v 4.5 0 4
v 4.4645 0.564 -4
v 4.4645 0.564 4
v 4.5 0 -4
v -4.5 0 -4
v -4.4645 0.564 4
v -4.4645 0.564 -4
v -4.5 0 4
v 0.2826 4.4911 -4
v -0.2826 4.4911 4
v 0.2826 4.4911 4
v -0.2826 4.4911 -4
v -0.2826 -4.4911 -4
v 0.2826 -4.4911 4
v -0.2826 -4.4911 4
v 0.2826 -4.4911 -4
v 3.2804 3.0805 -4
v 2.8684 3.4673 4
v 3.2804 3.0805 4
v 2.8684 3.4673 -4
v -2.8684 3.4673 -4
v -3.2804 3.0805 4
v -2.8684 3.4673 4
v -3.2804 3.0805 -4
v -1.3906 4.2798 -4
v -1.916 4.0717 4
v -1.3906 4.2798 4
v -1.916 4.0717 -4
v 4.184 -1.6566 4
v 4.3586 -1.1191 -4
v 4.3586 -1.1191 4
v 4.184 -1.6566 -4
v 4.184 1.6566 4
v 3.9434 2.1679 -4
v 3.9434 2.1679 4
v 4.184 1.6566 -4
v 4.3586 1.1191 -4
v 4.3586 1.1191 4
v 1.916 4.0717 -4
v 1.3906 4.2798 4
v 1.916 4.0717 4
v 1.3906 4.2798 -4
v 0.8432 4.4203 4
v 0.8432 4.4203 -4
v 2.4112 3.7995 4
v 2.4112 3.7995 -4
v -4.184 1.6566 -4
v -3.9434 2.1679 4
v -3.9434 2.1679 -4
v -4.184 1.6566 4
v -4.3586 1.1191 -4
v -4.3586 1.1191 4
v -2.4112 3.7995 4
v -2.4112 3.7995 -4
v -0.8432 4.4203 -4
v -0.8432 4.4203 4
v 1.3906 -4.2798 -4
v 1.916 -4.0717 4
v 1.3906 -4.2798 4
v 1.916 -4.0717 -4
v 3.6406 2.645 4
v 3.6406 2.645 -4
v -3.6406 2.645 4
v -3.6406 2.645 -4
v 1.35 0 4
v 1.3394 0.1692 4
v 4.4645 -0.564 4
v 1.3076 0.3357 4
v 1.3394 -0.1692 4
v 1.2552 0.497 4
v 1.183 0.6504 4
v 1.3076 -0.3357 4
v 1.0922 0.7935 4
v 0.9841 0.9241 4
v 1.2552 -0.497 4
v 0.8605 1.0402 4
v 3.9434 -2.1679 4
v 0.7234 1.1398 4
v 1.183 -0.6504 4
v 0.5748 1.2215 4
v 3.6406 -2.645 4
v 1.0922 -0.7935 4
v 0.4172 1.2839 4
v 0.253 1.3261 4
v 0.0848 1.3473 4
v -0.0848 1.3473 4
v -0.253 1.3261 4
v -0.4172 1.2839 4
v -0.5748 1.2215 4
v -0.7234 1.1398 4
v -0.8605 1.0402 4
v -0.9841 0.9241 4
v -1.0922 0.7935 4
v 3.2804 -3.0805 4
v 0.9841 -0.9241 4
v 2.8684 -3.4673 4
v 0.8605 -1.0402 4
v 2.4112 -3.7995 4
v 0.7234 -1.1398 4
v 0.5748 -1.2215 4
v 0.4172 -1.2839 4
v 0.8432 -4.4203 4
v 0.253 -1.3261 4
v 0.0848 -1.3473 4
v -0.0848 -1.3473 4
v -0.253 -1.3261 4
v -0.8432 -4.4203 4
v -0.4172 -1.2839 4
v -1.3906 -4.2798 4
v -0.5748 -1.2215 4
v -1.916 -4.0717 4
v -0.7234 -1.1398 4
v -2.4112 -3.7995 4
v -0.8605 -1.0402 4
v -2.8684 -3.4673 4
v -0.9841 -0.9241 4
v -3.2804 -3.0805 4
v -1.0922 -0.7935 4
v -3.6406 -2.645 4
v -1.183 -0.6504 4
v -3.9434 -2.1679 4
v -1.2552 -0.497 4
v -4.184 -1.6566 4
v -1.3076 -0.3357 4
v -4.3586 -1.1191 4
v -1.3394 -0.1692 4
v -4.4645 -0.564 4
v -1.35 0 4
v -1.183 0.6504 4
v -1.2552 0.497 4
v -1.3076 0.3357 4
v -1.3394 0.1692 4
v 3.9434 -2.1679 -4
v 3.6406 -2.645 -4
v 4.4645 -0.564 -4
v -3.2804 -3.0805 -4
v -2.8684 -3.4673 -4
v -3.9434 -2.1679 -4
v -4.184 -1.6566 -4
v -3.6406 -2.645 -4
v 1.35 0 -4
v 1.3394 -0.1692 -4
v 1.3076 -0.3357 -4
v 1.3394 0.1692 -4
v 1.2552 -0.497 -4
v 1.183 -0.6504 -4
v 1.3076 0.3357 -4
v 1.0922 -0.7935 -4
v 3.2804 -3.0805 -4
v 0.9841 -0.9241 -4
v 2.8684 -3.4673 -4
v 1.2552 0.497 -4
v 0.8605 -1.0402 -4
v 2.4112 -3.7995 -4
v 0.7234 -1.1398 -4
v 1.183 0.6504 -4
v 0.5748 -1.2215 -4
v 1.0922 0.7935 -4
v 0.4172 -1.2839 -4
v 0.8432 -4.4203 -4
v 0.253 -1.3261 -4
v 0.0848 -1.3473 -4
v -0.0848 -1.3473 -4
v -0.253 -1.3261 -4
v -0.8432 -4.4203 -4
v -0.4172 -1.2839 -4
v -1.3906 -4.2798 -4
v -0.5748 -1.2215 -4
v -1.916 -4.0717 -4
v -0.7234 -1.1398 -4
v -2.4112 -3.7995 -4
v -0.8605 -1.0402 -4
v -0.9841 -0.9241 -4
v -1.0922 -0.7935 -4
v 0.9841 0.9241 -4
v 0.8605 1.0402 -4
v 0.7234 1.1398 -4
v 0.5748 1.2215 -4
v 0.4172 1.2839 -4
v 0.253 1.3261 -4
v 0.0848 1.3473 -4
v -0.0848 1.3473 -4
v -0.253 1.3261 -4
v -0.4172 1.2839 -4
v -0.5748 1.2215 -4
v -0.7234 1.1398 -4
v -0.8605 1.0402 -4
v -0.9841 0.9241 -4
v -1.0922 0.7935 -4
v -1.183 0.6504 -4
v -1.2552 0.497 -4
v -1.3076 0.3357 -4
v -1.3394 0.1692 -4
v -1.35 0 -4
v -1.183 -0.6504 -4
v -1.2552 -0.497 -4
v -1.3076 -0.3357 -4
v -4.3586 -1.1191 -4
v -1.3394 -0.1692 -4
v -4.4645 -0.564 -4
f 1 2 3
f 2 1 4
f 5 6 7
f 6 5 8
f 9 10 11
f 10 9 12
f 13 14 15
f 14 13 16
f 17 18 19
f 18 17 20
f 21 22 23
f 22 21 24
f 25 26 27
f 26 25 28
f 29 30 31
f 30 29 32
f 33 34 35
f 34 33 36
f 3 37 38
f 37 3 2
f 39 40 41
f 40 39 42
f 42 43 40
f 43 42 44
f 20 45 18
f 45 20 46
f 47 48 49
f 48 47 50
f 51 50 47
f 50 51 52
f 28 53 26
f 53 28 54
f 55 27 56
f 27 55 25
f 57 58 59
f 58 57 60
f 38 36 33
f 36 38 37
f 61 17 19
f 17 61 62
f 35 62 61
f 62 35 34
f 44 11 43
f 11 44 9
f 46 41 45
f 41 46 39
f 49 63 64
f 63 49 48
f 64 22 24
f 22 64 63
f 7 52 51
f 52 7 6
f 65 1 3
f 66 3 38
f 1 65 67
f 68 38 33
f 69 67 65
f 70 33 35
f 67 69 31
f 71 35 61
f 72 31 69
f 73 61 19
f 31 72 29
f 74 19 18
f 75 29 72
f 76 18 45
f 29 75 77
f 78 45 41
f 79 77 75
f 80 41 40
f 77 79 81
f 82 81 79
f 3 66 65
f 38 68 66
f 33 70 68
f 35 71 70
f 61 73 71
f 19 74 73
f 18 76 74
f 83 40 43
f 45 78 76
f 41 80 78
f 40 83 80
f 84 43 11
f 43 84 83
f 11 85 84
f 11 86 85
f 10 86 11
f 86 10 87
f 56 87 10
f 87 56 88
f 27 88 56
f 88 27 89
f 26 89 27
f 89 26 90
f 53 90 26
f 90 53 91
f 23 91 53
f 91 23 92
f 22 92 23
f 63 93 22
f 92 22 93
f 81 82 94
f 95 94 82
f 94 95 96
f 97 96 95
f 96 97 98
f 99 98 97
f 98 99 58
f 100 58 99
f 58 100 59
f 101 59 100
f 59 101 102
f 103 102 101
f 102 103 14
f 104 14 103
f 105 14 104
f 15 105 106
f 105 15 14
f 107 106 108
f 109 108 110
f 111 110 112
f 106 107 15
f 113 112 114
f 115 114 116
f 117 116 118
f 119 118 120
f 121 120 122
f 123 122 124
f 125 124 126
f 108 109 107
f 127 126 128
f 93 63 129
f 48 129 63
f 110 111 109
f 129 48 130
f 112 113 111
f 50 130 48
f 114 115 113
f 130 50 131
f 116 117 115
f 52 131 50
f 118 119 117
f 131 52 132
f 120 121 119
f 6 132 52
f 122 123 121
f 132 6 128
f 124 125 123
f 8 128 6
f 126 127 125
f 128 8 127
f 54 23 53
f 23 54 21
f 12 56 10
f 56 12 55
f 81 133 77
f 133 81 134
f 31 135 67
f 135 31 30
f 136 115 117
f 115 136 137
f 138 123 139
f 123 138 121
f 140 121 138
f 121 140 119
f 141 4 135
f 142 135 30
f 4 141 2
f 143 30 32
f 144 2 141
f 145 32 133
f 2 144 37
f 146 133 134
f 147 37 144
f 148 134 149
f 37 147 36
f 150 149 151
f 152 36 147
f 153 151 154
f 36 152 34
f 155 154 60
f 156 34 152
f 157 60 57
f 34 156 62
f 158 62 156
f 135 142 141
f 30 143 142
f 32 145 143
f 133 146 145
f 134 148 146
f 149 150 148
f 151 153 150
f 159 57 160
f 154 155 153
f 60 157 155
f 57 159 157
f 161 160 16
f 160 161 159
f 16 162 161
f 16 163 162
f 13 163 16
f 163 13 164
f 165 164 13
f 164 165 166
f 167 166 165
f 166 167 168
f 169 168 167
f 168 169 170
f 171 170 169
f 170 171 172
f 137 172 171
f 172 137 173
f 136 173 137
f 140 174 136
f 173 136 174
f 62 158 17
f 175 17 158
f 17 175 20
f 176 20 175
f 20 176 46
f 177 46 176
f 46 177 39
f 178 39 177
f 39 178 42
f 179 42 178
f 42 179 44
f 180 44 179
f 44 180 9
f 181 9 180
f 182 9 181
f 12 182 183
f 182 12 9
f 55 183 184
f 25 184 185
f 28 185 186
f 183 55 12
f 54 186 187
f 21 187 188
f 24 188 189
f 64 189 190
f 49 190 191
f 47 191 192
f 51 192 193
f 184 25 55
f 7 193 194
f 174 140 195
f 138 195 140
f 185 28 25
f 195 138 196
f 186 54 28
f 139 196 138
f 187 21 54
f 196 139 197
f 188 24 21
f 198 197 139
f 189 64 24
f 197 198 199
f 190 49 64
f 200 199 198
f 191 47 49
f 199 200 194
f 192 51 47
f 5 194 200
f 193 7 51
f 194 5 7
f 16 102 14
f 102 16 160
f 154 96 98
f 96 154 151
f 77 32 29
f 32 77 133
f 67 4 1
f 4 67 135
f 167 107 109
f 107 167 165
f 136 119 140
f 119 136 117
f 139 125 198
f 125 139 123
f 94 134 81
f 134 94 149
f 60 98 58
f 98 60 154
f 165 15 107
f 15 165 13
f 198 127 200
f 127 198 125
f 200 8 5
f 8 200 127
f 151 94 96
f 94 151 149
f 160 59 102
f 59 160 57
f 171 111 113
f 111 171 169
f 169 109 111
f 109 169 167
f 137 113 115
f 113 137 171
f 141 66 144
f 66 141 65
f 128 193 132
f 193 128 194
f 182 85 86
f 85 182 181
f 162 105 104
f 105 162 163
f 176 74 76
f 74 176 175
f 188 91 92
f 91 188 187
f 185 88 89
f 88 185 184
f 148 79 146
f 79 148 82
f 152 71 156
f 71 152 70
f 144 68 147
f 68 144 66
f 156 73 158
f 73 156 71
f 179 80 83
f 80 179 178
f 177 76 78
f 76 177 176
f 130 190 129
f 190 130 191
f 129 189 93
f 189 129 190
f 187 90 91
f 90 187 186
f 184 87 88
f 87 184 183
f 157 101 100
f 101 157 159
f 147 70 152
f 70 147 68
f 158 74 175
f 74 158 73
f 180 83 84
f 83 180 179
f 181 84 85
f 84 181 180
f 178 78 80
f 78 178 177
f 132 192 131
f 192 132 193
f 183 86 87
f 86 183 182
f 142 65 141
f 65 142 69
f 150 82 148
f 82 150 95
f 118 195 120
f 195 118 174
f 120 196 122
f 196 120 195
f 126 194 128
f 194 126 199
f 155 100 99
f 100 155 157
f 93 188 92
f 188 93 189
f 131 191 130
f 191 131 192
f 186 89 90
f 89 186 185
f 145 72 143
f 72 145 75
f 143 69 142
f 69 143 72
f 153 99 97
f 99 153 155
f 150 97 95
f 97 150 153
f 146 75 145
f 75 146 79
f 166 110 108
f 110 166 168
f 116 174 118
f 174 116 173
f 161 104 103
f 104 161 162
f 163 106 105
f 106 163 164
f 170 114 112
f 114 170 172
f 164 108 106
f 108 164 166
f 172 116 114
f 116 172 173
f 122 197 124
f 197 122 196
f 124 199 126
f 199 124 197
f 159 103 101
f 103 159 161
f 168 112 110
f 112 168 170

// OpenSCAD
$fn = 50;


difference() {
	union() {
		translate(v = [0, 0, -4.0000000000]) {
			cylinder(h = 8, r = 4.5000000000);
		}
	}
	union() {
		translate(v = [0, 0, -100.0000000000]) {
			cylinder(h = 200, r = 1.3500000000);
		}
	}
}
